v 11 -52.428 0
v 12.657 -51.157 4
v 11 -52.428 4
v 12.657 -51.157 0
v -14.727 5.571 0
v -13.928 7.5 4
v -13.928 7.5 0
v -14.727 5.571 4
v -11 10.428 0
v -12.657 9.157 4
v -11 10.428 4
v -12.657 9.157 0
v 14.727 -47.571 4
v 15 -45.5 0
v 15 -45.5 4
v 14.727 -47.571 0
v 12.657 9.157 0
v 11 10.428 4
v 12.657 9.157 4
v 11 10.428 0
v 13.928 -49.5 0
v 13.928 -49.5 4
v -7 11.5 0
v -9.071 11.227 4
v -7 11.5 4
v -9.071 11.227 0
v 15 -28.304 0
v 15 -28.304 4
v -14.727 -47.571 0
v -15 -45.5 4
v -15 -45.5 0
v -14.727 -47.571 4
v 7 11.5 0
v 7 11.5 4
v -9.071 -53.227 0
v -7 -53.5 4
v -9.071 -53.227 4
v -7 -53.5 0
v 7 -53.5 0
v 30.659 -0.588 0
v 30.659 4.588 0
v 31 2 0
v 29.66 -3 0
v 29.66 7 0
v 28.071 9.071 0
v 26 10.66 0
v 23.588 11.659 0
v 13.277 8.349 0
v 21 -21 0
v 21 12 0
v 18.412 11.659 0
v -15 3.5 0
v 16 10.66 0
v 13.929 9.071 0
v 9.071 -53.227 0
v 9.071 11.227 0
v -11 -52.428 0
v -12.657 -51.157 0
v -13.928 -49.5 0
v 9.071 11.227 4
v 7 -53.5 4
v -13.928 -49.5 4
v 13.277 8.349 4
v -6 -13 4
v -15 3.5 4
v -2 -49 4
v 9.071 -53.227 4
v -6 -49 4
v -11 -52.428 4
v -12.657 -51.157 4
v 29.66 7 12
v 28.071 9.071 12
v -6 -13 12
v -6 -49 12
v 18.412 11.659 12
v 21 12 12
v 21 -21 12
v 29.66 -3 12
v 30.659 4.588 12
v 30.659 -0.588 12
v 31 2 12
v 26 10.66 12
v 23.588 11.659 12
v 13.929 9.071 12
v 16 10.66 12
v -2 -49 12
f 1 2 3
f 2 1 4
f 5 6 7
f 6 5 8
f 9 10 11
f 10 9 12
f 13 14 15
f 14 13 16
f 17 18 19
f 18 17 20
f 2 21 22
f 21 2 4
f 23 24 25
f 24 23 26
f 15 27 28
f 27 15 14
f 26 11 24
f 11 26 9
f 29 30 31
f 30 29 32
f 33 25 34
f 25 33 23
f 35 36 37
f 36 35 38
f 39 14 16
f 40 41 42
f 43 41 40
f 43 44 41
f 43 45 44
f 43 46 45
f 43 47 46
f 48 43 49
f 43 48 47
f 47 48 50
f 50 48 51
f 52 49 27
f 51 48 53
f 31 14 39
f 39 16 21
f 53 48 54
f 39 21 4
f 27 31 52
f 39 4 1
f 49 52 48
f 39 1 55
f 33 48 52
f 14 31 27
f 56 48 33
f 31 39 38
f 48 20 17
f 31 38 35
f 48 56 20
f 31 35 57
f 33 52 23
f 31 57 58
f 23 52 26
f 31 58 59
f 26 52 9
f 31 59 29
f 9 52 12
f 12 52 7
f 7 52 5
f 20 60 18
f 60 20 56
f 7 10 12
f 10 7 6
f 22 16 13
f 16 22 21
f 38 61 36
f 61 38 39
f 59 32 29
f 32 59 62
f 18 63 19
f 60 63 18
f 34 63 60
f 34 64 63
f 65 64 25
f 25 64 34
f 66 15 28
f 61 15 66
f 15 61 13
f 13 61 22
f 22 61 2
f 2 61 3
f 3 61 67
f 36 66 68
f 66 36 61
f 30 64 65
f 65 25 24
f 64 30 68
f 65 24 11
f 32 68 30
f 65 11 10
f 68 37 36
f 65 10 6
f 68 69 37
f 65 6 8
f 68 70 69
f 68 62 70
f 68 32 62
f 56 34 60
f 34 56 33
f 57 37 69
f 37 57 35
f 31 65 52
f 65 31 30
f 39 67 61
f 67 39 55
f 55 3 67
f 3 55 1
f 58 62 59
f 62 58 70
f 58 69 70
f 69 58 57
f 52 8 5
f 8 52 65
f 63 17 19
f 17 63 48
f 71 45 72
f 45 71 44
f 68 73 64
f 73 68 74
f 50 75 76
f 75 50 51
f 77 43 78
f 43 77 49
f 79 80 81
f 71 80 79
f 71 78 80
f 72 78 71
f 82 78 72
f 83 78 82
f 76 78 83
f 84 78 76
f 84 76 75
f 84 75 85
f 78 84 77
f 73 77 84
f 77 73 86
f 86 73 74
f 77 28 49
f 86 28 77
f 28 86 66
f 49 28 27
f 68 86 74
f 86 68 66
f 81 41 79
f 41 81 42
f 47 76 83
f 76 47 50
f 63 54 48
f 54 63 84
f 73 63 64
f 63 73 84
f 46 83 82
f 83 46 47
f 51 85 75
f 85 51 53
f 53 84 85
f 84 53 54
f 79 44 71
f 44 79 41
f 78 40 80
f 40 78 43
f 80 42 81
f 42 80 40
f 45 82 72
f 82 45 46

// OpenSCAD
// REGLA 4: Definición de resolución para las curvas
$fn=24;

// --- PARÁMETROS DE DISEÑO ---

// Dimensiones de la base de pared
base_ancho = 30;
base_alto = 65;
base_grosor = 4;        // REGLA 3: Mínimo 2mm
base_radio_esquina = 8;

// Dimensiones del brazo del gancho
gancho_ancho = 12;      // Ancho del brazo (eje X) para mayor robustez
gancho_alcance = 38;    // Cuánto sobresale de la pared (eje Y)
gancho_grosor_brazo = 8; // Grosor del brazo principal
gancho_radio_int = 15;  // Radio interior de la curva

// Dimensiones del refuerzo inferior (Gusset)
refuerzo_alto = 28;     // Altura del refuerzo sobre la base
refuerzo_alcance = 22;  // Alcance del refuerzo desde la base

// Parámetros de los agujeros (diseñados para tornillos M4)
tornillo_dist_z = 45;
tornillo_diam = 4.5;
avellanado_diam = 9;
avellanado_prof = 3;


// --- CÁLCULOS INTERNOS ---
// REGLA 2: Cálculo del desplazamiento para centrar el objeto en (0,0,0)
max_y = base_grosor + gancho_alcance;
min_y = 0;
desplazamiento_y = -(max_y + min_y) / 2;


// --- CONSTRUCCIÓN DEL MODELO ---
translate([0, desplazamiento_y, 0]) {
    difference() {
        union() {
            // Parte 1: Base de la pared
            // Se construye extruyendo una forma 2D con esquinas redondeadas.
            // REGLA 5: Comentario de parte clave
            linear_extrude(height = base_grosor) {
                offset(r = base_radio_esquina) {
                    square([base_ancho - 2*base_radio_esquina, base_alto - 2*base_radio_esquina], center = true);
                }
            }

            // Parte 2: Brazo del gancho y refuerzo
            // Se extruye un perfil 2D único para máxima solidez (FDM friendly).
            // REGLA 5: Comentario de parte clave
            translate([-gancho_ancho/2, 0, 0]) {
                linear_extrude(height = gancho_ancho, center = false) {
                    // El perfil 2D se crea con un 'hull' de varias formas simples
                    // para generar una geometría orgánica y resistente.
                    hull() {
                        // Conexión vertical con la base
                        translate([0, -refuerzo_alto])
                        square([base_grosor, refuerzo_alto + gancho_grosor_brazo]);

                        // Refuerzo triangular (Gusset)
                        polygon(points=[
                            [base_grosor, -refuerzo_alto],
                            [base_grosor, 0],
                            [base_grosor + refuerzo_alcance, 0]
                        ]);
                        
                        // Brazo horizontal
                        translate([base_grosor, 0])
                        square([gancho_alcance - gancho_radio_int, gancho_grosor_brazo]);
                        
                        // Círculo en el extremo para formar la curva y la punta
                        translate([base_grosor + gancho_alcance - gancho_radio_int, gancho_radio_int + gancho_grosor_brazo])
                        circle(r=gancho_grosor_brazo + 2);
                    }
                }
            }
        }

        // Parte 3: Agujeros avellanados para los tornillos
        // Se posicionan en la cara frontal de la base para realizar la sustracción.
        // REGLA 5: Comentario de parte clave
        // Agujero superior
        translate([0, base_grosor, tornillo_dist_z/2]) {
            rotate([-90, 0, 0]) {
                // Cilindro pasante
                cylinder(h = base_grosor + 2, d = tornillo_diam, center=true);
                // Cilindro cónico para el avellanado
                cylinder(h = avellanado_prof, d1 = avellanado_diam, d2 = tornillo_diam);
            }
        }
        // Agujero inferior
        translate([0, base_grosor, -tornillo_dist_z/2]) {
            rotate([-90, 0, 0]) {
                // Cilindro pasante
                cylinder(h = base_grosor + 2, d = tornillo_diam, center=true);
                // Cilindro cónico para el avellanado
                cylinder(h = avellanado_prof, d1 = avellanado_diam, d2 = tornillo_diam);
            }
        }
    }
}
